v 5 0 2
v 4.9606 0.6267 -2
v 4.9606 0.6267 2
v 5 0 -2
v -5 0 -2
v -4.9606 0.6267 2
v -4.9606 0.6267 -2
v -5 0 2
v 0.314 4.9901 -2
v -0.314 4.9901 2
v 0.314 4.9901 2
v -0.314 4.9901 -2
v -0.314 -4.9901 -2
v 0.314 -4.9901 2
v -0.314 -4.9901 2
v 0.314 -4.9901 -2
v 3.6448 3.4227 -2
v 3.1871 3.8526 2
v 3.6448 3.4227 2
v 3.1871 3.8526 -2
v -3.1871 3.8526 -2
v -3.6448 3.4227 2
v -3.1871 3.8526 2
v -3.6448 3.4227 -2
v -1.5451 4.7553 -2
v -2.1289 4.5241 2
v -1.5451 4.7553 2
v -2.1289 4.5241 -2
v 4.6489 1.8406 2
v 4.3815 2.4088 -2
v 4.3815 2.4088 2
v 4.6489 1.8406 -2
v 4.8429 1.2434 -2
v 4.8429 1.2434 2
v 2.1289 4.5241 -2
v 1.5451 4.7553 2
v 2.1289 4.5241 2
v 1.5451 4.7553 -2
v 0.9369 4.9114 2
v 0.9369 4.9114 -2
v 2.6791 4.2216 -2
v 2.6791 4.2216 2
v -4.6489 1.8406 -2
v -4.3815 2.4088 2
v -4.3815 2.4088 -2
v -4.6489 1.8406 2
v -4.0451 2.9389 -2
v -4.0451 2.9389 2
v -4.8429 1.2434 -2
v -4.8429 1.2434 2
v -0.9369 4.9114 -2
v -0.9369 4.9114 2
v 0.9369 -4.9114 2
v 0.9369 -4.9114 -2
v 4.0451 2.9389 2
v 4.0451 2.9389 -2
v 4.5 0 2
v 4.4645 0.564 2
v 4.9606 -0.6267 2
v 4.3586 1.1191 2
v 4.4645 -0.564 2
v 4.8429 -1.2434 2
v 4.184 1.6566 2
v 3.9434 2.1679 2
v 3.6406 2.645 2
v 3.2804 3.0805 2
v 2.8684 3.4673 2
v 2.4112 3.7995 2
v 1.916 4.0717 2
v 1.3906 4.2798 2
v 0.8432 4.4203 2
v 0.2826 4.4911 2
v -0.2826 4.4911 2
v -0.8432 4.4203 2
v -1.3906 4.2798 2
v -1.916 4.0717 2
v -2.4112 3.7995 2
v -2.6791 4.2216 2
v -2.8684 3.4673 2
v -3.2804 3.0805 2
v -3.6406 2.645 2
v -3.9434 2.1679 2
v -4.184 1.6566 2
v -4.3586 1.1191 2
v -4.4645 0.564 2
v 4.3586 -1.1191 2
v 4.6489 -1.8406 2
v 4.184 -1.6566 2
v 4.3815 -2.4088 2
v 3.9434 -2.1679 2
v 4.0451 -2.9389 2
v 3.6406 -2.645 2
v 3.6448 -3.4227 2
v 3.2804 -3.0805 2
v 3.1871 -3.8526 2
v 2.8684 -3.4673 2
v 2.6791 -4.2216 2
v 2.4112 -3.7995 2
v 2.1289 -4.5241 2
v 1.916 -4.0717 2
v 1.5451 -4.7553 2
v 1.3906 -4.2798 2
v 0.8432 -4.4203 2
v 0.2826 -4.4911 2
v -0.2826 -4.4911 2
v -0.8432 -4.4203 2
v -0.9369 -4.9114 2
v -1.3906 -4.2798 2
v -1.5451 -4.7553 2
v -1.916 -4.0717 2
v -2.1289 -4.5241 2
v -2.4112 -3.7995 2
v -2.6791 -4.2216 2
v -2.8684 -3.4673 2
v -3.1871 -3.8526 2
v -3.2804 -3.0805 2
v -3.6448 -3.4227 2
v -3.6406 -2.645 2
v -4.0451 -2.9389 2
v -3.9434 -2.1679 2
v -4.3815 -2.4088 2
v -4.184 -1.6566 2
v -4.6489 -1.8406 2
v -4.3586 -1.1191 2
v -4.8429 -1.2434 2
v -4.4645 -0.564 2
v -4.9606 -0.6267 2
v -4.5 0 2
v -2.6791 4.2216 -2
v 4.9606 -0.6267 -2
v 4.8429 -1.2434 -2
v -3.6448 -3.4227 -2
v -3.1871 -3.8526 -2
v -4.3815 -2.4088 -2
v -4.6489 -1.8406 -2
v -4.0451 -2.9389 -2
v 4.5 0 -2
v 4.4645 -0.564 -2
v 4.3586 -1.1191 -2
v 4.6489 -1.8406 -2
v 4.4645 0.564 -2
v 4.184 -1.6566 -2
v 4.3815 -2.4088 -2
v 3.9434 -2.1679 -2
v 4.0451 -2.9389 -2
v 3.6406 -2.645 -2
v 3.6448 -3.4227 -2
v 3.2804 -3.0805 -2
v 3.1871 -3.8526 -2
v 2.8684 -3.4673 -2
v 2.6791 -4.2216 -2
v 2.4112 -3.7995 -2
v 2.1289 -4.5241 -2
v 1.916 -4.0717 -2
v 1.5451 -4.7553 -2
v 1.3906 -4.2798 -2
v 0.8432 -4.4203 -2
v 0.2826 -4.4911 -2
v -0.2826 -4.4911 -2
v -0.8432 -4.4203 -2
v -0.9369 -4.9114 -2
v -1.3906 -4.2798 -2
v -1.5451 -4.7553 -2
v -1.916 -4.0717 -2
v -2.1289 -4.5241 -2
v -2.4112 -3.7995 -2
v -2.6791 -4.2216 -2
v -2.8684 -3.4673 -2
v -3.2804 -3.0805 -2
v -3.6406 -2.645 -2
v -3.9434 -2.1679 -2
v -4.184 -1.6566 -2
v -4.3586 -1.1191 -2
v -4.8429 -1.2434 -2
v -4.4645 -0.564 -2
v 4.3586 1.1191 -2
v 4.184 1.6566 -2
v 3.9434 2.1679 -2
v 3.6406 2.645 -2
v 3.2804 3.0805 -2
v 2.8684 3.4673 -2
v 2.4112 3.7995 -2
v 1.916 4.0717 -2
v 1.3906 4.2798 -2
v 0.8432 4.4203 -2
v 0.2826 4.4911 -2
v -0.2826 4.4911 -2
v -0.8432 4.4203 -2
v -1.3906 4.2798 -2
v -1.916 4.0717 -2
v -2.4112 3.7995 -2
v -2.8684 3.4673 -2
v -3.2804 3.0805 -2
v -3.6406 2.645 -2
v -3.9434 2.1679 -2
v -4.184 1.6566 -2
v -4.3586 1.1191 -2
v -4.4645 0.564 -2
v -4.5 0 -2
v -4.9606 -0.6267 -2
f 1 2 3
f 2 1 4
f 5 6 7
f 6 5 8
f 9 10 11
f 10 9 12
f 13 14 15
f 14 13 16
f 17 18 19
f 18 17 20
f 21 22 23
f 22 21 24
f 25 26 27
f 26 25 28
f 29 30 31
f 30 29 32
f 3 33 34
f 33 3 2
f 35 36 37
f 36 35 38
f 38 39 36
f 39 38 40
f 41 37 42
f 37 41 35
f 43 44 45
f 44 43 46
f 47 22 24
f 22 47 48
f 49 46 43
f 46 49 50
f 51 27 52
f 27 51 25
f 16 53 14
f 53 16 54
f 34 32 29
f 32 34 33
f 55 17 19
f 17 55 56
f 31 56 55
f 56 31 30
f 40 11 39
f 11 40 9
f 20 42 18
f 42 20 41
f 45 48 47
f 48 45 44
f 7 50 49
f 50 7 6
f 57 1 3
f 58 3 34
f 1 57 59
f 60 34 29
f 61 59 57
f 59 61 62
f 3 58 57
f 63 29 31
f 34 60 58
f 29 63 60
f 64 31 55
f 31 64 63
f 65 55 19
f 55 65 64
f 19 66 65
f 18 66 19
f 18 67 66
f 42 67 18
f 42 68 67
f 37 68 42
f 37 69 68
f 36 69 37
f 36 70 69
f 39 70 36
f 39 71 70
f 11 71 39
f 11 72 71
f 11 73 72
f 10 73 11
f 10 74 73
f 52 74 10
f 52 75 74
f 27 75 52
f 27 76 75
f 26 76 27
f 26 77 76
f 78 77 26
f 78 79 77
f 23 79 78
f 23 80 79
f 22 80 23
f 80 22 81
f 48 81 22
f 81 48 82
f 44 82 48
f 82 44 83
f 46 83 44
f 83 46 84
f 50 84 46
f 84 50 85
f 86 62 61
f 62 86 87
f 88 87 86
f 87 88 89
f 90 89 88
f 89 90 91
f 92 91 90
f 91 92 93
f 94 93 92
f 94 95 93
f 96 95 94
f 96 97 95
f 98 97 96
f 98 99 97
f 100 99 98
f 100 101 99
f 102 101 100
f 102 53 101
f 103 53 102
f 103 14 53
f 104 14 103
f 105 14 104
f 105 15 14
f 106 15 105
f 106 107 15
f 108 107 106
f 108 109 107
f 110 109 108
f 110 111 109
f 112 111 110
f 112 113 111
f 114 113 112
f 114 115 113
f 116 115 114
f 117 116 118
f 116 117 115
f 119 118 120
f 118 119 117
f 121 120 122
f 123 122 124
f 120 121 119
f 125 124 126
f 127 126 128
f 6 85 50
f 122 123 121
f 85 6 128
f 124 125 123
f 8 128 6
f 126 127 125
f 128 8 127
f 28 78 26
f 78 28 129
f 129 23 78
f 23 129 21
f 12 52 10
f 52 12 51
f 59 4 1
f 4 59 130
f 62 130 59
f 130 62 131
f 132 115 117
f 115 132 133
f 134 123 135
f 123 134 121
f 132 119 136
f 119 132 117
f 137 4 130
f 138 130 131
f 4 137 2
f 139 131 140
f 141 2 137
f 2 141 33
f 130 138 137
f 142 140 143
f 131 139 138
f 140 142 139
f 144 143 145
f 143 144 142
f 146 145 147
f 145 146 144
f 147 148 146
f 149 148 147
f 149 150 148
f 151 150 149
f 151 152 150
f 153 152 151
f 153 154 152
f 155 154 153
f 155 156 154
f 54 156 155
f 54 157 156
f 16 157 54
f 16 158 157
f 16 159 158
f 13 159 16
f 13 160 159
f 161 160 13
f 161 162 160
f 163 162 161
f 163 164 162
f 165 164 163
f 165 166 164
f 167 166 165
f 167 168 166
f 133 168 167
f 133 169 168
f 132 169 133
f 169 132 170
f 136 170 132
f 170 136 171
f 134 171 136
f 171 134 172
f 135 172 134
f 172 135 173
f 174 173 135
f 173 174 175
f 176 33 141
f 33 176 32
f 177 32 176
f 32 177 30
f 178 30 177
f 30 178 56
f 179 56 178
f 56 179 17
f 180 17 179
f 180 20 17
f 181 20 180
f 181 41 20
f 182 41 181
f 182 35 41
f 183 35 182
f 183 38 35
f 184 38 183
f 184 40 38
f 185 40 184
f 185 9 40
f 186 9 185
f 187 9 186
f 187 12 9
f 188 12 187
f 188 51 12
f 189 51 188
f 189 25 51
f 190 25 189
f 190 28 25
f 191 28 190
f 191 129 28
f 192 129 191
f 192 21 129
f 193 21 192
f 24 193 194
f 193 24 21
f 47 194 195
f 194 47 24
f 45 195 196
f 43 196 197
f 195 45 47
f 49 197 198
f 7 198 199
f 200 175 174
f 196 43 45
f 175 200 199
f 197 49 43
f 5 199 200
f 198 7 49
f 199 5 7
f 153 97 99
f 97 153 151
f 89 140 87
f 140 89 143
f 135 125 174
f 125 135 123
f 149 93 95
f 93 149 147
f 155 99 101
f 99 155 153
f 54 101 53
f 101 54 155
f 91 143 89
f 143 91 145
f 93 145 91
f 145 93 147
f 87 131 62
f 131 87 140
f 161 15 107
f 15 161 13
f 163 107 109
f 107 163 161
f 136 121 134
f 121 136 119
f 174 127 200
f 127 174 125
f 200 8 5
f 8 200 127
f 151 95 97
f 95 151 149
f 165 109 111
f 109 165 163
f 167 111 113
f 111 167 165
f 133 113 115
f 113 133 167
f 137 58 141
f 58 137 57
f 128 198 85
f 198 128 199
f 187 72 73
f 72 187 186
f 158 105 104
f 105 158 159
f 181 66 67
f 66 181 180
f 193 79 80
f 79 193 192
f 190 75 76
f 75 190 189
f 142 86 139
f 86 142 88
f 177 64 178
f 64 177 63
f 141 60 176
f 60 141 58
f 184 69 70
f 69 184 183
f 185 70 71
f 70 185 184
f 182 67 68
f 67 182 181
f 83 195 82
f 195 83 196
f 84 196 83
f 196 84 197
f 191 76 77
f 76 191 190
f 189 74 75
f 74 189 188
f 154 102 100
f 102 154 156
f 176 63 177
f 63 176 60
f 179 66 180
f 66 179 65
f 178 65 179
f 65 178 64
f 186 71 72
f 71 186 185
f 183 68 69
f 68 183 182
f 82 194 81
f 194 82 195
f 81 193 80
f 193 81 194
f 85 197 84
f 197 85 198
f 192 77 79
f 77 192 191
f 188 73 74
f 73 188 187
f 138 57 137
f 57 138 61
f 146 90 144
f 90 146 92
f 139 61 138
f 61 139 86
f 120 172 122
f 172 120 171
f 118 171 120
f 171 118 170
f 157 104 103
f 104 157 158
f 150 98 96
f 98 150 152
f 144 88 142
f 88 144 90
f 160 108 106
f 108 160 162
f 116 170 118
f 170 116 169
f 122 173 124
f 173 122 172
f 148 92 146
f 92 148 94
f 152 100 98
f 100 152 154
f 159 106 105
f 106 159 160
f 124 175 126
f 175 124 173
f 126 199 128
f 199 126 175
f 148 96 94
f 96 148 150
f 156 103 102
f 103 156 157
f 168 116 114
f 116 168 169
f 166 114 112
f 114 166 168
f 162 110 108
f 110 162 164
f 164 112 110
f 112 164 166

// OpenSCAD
$fn = 50;


difference() {
	union() {
		translate(v = [0, 0, -2.0000000000]) {
			cylinder(h = 4, r = 5.0000000000);
		}
	}
	union() {
		translate(v = [0, 0, -100.0000000000]) {
			cylinder(h = 200, r = 4.5000000000);
		}
	}
}
